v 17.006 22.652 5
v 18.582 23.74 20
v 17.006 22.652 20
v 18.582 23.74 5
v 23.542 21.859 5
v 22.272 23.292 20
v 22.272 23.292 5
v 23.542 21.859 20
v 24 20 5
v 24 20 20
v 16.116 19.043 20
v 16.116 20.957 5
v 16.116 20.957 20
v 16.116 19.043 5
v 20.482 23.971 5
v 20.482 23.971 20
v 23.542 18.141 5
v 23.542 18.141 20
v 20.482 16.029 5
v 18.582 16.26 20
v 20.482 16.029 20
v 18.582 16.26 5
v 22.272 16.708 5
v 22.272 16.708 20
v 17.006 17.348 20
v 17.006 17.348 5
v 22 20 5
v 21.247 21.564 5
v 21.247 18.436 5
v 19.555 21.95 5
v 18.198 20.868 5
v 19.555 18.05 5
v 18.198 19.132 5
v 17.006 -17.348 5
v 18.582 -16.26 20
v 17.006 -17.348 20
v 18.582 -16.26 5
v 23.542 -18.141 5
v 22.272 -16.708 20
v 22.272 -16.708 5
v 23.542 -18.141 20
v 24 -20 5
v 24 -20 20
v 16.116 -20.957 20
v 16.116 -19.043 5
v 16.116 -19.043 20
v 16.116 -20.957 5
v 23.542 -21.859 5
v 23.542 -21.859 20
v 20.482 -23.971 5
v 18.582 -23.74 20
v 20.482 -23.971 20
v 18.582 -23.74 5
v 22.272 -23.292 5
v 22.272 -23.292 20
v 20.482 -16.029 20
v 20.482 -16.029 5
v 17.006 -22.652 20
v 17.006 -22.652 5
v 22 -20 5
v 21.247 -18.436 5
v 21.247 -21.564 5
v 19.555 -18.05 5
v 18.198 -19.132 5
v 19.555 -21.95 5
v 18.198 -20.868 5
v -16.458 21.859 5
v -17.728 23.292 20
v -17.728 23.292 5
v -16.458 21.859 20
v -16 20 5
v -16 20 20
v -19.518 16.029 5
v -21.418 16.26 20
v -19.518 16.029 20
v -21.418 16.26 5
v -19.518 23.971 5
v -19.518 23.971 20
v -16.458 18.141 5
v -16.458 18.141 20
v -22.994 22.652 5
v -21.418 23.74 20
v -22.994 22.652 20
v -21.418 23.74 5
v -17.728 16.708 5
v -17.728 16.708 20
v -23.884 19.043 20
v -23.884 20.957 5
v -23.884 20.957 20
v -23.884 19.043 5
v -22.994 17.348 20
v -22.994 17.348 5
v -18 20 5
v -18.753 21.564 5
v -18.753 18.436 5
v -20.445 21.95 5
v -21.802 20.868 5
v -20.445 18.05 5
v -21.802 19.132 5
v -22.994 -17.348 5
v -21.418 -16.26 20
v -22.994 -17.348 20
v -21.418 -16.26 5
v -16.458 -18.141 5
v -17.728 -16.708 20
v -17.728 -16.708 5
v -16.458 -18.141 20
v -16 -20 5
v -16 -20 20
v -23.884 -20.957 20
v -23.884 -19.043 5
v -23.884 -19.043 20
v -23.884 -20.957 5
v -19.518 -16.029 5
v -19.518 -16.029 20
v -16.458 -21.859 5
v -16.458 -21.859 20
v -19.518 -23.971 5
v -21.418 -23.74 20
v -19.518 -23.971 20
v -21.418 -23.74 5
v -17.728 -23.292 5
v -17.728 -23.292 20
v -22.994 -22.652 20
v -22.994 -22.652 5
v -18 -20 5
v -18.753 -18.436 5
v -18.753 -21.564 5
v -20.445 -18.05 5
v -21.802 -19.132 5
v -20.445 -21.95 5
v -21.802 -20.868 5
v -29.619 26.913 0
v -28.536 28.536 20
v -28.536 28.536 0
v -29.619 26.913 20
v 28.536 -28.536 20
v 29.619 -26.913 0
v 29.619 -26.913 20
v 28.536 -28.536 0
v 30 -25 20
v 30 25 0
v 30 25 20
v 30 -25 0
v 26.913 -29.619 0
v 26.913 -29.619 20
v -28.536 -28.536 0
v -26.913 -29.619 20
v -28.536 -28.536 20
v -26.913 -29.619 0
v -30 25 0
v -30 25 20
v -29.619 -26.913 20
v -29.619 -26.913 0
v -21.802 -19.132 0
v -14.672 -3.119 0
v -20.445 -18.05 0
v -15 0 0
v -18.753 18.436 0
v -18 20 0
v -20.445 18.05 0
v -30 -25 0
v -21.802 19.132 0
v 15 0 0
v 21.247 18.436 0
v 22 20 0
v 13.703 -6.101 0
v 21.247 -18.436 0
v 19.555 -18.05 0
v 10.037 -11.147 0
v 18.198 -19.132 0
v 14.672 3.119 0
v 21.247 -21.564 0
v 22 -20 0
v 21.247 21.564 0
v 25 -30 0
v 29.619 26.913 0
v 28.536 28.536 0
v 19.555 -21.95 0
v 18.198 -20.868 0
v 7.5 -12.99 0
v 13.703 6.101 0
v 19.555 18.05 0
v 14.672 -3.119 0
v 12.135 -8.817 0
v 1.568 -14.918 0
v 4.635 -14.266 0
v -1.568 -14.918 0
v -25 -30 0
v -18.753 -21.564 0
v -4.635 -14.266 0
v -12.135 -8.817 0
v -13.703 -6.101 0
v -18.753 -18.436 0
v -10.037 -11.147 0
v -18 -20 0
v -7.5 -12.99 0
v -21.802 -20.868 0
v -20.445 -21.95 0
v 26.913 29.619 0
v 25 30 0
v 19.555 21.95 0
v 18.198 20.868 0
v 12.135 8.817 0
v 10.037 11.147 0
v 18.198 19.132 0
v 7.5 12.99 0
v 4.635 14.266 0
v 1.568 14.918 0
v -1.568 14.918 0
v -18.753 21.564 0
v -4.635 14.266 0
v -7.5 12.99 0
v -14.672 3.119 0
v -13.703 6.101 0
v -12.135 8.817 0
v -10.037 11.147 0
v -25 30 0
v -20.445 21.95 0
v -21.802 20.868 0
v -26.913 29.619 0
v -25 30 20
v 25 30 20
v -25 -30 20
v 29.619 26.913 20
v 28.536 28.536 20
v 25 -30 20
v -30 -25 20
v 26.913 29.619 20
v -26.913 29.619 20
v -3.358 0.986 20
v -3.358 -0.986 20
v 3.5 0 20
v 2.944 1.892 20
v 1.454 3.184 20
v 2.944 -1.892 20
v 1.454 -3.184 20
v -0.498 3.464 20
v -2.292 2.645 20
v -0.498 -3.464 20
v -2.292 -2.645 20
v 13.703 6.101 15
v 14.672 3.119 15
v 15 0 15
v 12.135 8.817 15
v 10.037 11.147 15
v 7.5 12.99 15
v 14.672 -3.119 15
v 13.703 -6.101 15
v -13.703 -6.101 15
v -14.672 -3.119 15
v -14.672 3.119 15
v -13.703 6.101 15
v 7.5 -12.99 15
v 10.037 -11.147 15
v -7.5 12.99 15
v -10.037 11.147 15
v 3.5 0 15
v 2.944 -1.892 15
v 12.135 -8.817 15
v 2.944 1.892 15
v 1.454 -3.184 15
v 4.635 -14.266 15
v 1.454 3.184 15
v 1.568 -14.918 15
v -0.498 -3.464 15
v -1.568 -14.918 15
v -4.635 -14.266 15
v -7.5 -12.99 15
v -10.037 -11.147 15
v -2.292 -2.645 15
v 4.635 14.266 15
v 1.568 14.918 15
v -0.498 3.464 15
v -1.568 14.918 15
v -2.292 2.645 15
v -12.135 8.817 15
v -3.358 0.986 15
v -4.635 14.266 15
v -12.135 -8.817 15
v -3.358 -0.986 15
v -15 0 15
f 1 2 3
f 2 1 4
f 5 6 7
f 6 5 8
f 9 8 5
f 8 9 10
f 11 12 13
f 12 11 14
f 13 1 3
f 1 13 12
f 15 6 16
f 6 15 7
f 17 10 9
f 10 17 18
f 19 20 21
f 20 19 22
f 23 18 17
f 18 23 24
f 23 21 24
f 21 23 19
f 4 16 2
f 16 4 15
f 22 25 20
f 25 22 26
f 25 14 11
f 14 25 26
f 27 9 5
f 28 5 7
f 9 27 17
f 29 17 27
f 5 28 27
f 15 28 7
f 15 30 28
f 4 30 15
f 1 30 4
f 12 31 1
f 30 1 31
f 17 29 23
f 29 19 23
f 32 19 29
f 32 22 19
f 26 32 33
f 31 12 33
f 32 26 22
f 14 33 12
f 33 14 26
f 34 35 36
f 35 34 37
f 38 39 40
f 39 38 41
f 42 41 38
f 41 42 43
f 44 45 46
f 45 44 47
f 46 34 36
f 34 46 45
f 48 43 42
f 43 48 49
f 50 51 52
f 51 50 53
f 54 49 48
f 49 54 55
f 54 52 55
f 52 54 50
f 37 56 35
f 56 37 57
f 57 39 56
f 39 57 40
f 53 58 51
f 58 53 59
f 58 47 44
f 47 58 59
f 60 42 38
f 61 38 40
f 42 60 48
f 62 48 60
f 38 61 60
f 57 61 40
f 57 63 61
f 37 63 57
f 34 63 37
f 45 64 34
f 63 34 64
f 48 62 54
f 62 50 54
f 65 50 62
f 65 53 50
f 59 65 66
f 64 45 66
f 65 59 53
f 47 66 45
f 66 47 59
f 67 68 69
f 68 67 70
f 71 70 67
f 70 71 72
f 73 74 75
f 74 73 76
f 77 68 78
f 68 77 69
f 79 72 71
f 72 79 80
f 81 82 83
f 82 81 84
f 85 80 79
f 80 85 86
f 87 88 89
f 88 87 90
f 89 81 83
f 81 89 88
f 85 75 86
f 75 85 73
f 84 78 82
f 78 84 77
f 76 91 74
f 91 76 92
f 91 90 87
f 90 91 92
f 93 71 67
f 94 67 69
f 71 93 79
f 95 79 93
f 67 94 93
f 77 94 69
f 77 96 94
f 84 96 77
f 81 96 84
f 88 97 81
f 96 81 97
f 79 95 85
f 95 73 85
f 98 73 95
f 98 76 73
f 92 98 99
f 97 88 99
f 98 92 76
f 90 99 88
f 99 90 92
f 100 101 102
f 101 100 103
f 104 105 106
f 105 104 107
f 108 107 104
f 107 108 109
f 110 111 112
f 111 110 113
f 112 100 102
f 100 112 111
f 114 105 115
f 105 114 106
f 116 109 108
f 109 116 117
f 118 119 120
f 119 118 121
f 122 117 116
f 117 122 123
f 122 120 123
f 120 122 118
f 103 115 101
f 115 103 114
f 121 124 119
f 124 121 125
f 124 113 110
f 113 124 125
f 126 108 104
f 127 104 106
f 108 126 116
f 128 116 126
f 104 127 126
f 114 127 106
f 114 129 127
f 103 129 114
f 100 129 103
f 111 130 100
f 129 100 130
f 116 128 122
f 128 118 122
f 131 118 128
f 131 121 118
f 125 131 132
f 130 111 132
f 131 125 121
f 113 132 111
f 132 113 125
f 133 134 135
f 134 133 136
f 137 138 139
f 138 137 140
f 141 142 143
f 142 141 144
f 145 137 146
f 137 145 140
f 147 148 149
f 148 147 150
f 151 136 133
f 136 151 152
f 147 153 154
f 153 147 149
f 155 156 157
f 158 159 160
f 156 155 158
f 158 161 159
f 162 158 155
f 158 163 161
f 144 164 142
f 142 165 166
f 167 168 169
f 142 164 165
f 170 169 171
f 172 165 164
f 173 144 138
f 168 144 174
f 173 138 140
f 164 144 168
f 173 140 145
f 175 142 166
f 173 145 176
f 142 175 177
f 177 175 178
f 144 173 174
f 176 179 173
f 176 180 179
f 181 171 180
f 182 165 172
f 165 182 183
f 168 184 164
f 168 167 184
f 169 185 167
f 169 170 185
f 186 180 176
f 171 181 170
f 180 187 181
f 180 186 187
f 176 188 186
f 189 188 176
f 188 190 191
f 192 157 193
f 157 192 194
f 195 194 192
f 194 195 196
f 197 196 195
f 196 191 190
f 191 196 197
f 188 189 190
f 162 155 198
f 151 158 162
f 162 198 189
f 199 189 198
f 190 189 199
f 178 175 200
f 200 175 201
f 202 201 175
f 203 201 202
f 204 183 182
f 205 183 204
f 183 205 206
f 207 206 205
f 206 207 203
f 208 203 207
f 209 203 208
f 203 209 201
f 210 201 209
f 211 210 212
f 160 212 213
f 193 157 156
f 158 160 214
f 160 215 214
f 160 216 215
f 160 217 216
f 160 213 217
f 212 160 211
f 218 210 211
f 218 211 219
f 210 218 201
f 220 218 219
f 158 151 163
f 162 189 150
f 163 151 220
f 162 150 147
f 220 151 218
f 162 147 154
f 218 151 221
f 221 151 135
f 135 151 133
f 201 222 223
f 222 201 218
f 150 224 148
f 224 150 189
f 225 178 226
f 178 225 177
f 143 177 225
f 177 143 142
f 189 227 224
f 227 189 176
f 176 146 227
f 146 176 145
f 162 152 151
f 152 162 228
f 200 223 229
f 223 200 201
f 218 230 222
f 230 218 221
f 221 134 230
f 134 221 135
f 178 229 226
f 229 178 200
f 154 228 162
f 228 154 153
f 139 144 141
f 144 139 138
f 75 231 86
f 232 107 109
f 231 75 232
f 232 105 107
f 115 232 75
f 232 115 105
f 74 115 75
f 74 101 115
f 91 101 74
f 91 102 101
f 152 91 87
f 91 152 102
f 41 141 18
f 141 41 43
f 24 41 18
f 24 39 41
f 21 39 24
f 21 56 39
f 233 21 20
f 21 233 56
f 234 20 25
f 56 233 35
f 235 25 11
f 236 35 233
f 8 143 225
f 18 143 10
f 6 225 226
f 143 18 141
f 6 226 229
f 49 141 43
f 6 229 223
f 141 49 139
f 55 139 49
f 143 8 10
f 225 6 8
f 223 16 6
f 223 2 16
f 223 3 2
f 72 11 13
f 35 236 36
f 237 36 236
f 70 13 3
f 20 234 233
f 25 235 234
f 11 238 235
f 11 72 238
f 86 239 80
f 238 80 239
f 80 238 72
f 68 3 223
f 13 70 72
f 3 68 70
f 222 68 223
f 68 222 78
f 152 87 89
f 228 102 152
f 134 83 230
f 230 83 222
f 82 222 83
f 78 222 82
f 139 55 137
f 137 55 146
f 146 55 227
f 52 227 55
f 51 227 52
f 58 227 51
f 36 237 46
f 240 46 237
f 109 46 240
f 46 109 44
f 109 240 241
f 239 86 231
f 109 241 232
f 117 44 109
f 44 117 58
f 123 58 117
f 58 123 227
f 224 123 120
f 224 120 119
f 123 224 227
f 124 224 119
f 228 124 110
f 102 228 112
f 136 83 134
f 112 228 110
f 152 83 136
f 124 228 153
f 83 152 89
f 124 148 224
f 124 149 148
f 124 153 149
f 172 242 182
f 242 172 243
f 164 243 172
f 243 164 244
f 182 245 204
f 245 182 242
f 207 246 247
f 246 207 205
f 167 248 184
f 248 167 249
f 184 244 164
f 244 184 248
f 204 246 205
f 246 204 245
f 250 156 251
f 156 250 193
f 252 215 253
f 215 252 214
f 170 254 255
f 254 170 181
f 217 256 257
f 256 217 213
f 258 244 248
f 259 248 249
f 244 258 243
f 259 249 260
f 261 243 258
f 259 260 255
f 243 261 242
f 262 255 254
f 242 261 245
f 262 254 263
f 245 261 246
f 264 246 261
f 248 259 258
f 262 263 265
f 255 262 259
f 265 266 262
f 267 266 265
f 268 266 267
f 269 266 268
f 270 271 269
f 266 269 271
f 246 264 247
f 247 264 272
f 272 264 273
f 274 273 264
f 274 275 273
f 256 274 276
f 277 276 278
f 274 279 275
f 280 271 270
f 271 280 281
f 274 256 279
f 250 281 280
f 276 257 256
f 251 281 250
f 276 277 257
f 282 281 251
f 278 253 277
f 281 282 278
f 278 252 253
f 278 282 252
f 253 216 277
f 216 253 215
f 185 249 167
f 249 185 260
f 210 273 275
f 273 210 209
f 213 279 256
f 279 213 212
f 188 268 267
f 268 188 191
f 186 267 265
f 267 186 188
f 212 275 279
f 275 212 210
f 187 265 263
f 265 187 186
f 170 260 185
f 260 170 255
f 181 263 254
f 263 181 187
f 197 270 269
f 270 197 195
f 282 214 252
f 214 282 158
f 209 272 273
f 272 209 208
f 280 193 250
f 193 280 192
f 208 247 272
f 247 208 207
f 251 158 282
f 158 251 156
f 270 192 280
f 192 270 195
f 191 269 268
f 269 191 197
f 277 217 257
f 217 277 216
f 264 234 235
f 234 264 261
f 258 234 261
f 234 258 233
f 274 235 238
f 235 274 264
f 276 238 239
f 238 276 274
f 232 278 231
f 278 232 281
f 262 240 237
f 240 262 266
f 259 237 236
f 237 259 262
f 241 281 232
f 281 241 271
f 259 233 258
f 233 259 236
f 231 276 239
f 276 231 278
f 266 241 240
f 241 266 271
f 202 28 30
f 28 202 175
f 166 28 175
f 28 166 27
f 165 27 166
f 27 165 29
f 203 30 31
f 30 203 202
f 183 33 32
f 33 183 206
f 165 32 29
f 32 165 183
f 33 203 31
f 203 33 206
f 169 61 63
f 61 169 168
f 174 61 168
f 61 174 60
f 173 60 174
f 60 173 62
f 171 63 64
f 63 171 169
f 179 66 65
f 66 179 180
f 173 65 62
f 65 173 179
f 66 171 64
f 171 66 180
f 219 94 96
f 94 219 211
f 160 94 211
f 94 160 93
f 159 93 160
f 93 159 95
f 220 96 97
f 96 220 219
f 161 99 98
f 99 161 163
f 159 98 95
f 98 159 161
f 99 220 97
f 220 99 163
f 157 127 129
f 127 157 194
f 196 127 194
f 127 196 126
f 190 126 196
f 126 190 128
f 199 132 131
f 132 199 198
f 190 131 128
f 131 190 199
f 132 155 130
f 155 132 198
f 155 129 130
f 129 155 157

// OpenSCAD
difference(){
linear_extrude(20)
offset(5)
square([60-10,60-10],center=true);

    translate([0,0,-1])
    cylinder(d=30,h=1+15);
    translate([0,0,-1])
    cylinder(d=7,h=25);


translate([20,20,-1])
cylinder(d=4,h=25);
translate([20,-20,-1])
cylinder(d=4,h=25);
translate([-20,20,-1])
cylinder(d=4,h=25);
translate([-20,-20,-1])
cylinder(d=4,h=25);

translate([0,0,1+5]){    
translate([20,20,-1])
cylinder(d=8,h=25);
translate([20,-20,-1])
cylinder(d=8,h=25);
translate([-20,20,-1])
cylinder(d=8,h=25);
translate([-20,-20,-1])
cylinder(d=8,h=25);
}
}
